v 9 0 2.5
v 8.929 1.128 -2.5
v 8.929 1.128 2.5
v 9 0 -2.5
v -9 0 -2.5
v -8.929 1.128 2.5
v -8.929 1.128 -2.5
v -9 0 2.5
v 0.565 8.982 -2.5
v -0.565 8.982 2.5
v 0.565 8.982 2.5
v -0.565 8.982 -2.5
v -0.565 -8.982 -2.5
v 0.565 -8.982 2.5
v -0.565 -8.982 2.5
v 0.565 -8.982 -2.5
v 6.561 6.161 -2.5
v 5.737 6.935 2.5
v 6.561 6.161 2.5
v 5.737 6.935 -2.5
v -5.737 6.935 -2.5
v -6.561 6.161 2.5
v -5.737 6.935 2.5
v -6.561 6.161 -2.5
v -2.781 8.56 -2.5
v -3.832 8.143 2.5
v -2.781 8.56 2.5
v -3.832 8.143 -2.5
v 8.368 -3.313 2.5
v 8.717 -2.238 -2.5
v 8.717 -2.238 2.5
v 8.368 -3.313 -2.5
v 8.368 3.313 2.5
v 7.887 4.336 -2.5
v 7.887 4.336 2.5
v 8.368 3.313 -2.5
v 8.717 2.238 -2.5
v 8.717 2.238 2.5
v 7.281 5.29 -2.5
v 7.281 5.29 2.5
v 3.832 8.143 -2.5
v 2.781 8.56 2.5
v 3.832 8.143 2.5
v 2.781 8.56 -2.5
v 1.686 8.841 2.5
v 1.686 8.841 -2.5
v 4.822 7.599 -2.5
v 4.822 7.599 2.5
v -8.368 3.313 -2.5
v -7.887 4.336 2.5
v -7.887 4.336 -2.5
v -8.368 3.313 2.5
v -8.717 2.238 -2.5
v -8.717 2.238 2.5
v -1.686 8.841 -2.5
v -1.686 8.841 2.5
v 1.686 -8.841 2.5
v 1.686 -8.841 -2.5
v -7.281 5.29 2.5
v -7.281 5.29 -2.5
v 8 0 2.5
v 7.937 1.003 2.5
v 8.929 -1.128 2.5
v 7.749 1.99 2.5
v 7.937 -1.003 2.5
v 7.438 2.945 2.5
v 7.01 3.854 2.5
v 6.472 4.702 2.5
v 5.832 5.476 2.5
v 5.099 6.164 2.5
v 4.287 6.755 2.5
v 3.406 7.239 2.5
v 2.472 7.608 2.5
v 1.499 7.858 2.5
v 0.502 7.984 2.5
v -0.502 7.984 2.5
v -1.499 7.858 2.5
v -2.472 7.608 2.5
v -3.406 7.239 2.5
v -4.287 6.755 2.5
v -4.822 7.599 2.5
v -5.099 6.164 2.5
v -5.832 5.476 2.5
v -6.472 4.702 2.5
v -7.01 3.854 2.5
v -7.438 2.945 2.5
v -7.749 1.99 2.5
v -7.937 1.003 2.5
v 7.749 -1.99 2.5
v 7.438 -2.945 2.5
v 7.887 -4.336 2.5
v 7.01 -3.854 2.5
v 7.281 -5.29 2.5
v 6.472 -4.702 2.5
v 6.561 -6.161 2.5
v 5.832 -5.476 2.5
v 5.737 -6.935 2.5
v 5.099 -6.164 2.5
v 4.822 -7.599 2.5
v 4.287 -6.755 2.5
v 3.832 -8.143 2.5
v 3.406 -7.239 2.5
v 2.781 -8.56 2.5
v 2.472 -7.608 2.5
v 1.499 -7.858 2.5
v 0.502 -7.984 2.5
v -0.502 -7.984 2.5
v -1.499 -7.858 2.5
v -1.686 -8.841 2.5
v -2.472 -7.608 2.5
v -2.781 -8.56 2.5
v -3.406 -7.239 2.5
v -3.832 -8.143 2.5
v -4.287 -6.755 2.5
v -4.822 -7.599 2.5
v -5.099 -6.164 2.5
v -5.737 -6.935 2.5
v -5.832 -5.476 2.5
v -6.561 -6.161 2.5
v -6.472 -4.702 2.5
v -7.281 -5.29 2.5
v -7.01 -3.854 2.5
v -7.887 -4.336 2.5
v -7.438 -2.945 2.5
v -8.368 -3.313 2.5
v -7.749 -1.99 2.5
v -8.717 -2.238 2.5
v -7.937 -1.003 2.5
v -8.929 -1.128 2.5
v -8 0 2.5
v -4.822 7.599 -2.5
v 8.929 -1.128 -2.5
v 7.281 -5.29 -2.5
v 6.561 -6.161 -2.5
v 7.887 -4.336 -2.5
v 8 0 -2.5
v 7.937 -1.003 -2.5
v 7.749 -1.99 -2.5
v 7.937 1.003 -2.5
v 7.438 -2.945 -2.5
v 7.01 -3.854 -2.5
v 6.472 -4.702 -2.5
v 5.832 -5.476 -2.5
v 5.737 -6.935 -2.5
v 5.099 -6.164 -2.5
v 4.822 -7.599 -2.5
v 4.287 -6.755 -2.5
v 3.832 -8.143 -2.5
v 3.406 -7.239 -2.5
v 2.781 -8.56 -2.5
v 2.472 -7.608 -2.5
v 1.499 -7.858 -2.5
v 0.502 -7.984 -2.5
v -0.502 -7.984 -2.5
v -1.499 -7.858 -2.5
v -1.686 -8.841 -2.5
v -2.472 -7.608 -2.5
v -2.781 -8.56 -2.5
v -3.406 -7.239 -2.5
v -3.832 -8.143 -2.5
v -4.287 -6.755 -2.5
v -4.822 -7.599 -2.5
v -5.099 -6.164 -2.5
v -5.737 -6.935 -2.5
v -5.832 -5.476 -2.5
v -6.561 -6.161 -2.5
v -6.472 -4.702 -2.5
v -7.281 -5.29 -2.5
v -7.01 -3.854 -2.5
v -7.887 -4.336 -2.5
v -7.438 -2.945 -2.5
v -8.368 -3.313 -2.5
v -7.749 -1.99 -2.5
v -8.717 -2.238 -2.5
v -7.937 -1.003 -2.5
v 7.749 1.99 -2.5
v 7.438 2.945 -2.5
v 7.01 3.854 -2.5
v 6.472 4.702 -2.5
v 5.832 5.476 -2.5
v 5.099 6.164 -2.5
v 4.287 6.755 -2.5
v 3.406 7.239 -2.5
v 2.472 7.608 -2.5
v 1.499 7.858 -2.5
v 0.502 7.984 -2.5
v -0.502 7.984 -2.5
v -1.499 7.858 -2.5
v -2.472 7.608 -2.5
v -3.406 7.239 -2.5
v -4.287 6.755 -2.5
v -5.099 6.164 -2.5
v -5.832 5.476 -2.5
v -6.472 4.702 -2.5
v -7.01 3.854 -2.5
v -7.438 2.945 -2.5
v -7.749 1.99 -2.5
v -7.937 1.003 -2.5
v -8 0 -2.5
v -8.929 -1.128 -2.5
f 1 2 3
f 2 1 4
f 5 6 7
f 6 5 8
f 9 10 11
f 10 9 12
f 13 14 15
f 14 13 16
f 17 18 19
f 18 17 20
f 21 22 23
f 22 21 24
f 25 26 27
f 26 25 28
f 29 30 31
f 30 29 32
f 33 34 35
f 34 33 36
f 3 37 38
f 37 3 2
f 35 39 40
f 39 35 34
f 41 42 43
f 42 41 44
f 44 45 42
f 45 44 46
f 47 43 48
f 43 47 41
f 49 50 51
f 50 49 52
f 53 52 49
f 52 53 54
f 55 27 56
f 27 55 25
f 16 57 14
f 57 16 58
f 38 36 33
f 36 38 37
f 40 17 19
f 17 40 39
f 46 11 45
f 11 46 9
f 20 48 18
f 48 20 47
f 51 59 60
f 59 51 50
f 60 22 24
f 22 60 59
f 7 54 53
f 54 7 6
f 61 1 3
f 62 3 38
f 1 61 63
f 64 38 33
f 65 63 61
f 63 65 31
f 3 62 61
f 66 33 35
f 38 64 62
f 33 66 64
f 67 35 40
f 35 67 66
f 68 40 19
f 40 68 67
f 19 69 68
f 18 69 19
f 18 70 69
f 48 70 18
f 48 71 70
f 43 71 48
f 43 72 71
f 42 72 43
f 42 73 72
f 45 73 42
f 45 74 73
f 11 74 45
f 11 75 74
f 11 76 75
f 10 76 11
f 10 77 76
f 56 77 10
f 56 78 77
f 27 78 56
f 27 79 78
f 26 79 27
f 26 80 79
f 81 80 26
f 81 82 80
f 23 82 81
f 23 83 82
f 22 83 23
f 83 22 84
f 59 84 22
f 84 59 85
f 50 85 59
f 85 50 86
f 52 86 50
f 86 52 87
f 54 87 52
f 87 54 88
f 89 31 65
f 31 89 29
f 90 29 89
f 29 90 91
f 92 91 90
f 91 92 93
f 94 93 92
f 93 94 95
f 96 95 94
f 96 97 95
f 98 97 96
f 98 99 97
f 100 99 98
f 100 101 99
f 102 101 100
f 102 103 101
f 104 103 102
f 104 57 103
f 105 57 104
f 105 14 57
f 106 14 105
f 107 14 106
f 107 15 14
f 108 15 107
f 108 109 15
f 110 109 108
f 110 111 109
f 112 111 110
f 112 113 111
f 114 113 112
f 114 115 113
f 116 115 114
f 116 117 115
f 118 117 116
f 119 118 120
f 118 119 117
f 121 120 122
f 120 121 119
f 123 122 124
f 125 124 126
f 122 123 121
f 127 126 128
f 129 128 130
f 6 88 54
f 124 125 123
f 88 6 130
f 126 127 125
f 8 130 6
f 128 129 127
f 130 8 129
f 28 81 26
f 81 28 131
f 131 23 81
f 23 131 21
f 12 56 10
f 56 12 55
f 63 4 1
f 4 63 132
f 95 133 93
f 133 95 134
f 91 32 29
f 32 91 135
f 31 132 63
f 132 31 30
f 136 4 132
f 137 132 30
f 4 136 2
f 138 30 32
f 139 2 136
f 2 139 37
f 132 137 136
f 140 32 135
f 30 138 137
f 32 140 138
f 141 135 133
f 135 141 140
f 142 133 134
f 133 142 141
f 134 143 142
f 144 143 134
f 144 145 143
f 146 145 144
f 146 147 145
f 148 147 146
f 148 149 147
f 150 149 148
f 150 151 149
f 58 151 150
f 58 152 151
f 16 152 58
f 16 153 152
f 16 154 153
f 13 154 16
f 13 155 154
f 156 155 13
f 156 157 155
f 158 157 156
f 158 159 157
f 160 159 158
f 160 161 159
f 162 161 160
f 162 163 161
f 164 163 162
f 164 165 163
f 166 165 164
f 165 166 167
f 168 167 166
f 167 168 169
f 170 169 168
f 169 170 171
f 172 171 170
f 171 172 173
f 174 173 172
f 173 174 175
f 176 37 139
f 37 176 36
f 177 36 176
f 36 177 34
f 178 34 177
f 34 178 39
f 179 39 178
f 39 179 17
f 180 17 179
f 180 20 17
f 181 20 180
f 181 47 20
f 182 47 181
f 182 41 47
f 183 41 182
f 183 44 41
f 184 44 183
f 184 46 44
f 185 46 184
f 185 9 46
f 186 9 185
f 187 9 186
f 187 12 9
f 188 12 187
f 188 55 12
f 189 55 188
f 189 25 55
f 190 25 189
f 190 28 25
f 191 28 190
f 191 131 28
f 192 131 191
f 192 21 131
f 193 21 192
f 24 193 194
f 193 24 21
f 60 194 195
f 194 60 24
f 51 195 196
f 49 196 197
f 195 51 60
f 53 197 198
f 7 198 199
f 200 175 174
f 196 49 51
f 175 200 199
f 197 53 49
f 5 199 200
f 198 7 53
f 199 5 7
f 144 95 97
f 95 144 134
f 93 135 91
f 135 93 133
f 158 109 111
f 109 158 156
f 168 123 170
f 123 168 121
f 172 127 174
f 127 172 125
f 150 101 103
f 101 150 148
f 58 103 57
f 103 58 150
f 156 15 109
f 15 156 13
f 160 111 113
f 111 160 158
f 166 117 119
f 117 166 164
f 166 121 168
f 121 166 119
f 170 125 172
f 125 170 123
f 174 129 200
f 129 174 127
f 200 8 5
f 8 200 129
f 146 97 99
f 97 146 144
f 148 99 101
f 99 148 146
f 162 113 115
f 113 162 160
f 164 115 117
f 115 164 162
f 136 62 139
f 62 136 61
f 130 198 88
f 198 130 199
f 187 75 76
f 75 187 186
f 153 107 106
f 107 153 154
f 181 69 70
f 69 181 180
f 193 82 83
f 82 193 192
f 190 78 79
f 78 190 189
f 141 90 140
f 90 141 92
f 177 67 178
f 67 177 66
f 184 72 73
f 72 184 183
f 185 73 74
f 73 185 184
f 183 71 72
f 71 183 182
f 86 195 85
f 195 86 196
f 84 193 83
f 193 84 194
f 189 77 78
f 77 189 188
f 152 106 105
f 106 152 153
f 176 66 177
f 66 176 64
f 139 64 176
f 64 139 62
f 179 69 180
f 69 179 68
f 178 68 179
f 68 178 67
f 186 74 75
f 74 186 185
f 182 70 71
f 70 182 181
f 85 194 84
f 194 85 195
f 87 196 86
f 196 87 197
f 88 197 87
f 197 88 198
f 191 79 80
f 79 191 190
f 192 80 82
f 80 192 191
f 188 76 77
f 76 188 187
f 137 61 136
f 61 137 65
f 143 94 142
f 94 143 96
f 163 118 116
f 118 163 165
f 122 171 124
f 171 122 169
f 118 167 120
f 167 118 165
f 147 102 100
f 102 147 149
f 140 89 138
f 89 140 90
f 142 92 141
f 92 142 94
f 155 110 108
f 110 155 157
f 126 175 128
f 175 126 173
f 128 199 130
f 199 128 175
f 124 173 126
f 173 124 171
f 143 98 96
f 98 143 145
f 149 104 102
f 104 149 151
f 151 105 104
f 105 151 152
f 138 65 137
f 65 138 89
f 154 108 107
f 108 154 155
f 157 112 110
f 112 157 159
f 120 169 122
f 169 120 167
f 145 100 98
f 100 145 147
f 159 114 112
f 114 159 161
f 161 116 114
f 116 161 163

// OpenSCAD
$fn = 50;


difference() {
	union() {
		translate(v = [0, 0, -2.5000000000]) {
			cylinder(h = 5, r = 9.0000000000);
		}
	}
	union() {
		translate(v = [0, 0, -100.0000000000]) {
			cylinder(h = 200, r = 8);
		}
	}
}
